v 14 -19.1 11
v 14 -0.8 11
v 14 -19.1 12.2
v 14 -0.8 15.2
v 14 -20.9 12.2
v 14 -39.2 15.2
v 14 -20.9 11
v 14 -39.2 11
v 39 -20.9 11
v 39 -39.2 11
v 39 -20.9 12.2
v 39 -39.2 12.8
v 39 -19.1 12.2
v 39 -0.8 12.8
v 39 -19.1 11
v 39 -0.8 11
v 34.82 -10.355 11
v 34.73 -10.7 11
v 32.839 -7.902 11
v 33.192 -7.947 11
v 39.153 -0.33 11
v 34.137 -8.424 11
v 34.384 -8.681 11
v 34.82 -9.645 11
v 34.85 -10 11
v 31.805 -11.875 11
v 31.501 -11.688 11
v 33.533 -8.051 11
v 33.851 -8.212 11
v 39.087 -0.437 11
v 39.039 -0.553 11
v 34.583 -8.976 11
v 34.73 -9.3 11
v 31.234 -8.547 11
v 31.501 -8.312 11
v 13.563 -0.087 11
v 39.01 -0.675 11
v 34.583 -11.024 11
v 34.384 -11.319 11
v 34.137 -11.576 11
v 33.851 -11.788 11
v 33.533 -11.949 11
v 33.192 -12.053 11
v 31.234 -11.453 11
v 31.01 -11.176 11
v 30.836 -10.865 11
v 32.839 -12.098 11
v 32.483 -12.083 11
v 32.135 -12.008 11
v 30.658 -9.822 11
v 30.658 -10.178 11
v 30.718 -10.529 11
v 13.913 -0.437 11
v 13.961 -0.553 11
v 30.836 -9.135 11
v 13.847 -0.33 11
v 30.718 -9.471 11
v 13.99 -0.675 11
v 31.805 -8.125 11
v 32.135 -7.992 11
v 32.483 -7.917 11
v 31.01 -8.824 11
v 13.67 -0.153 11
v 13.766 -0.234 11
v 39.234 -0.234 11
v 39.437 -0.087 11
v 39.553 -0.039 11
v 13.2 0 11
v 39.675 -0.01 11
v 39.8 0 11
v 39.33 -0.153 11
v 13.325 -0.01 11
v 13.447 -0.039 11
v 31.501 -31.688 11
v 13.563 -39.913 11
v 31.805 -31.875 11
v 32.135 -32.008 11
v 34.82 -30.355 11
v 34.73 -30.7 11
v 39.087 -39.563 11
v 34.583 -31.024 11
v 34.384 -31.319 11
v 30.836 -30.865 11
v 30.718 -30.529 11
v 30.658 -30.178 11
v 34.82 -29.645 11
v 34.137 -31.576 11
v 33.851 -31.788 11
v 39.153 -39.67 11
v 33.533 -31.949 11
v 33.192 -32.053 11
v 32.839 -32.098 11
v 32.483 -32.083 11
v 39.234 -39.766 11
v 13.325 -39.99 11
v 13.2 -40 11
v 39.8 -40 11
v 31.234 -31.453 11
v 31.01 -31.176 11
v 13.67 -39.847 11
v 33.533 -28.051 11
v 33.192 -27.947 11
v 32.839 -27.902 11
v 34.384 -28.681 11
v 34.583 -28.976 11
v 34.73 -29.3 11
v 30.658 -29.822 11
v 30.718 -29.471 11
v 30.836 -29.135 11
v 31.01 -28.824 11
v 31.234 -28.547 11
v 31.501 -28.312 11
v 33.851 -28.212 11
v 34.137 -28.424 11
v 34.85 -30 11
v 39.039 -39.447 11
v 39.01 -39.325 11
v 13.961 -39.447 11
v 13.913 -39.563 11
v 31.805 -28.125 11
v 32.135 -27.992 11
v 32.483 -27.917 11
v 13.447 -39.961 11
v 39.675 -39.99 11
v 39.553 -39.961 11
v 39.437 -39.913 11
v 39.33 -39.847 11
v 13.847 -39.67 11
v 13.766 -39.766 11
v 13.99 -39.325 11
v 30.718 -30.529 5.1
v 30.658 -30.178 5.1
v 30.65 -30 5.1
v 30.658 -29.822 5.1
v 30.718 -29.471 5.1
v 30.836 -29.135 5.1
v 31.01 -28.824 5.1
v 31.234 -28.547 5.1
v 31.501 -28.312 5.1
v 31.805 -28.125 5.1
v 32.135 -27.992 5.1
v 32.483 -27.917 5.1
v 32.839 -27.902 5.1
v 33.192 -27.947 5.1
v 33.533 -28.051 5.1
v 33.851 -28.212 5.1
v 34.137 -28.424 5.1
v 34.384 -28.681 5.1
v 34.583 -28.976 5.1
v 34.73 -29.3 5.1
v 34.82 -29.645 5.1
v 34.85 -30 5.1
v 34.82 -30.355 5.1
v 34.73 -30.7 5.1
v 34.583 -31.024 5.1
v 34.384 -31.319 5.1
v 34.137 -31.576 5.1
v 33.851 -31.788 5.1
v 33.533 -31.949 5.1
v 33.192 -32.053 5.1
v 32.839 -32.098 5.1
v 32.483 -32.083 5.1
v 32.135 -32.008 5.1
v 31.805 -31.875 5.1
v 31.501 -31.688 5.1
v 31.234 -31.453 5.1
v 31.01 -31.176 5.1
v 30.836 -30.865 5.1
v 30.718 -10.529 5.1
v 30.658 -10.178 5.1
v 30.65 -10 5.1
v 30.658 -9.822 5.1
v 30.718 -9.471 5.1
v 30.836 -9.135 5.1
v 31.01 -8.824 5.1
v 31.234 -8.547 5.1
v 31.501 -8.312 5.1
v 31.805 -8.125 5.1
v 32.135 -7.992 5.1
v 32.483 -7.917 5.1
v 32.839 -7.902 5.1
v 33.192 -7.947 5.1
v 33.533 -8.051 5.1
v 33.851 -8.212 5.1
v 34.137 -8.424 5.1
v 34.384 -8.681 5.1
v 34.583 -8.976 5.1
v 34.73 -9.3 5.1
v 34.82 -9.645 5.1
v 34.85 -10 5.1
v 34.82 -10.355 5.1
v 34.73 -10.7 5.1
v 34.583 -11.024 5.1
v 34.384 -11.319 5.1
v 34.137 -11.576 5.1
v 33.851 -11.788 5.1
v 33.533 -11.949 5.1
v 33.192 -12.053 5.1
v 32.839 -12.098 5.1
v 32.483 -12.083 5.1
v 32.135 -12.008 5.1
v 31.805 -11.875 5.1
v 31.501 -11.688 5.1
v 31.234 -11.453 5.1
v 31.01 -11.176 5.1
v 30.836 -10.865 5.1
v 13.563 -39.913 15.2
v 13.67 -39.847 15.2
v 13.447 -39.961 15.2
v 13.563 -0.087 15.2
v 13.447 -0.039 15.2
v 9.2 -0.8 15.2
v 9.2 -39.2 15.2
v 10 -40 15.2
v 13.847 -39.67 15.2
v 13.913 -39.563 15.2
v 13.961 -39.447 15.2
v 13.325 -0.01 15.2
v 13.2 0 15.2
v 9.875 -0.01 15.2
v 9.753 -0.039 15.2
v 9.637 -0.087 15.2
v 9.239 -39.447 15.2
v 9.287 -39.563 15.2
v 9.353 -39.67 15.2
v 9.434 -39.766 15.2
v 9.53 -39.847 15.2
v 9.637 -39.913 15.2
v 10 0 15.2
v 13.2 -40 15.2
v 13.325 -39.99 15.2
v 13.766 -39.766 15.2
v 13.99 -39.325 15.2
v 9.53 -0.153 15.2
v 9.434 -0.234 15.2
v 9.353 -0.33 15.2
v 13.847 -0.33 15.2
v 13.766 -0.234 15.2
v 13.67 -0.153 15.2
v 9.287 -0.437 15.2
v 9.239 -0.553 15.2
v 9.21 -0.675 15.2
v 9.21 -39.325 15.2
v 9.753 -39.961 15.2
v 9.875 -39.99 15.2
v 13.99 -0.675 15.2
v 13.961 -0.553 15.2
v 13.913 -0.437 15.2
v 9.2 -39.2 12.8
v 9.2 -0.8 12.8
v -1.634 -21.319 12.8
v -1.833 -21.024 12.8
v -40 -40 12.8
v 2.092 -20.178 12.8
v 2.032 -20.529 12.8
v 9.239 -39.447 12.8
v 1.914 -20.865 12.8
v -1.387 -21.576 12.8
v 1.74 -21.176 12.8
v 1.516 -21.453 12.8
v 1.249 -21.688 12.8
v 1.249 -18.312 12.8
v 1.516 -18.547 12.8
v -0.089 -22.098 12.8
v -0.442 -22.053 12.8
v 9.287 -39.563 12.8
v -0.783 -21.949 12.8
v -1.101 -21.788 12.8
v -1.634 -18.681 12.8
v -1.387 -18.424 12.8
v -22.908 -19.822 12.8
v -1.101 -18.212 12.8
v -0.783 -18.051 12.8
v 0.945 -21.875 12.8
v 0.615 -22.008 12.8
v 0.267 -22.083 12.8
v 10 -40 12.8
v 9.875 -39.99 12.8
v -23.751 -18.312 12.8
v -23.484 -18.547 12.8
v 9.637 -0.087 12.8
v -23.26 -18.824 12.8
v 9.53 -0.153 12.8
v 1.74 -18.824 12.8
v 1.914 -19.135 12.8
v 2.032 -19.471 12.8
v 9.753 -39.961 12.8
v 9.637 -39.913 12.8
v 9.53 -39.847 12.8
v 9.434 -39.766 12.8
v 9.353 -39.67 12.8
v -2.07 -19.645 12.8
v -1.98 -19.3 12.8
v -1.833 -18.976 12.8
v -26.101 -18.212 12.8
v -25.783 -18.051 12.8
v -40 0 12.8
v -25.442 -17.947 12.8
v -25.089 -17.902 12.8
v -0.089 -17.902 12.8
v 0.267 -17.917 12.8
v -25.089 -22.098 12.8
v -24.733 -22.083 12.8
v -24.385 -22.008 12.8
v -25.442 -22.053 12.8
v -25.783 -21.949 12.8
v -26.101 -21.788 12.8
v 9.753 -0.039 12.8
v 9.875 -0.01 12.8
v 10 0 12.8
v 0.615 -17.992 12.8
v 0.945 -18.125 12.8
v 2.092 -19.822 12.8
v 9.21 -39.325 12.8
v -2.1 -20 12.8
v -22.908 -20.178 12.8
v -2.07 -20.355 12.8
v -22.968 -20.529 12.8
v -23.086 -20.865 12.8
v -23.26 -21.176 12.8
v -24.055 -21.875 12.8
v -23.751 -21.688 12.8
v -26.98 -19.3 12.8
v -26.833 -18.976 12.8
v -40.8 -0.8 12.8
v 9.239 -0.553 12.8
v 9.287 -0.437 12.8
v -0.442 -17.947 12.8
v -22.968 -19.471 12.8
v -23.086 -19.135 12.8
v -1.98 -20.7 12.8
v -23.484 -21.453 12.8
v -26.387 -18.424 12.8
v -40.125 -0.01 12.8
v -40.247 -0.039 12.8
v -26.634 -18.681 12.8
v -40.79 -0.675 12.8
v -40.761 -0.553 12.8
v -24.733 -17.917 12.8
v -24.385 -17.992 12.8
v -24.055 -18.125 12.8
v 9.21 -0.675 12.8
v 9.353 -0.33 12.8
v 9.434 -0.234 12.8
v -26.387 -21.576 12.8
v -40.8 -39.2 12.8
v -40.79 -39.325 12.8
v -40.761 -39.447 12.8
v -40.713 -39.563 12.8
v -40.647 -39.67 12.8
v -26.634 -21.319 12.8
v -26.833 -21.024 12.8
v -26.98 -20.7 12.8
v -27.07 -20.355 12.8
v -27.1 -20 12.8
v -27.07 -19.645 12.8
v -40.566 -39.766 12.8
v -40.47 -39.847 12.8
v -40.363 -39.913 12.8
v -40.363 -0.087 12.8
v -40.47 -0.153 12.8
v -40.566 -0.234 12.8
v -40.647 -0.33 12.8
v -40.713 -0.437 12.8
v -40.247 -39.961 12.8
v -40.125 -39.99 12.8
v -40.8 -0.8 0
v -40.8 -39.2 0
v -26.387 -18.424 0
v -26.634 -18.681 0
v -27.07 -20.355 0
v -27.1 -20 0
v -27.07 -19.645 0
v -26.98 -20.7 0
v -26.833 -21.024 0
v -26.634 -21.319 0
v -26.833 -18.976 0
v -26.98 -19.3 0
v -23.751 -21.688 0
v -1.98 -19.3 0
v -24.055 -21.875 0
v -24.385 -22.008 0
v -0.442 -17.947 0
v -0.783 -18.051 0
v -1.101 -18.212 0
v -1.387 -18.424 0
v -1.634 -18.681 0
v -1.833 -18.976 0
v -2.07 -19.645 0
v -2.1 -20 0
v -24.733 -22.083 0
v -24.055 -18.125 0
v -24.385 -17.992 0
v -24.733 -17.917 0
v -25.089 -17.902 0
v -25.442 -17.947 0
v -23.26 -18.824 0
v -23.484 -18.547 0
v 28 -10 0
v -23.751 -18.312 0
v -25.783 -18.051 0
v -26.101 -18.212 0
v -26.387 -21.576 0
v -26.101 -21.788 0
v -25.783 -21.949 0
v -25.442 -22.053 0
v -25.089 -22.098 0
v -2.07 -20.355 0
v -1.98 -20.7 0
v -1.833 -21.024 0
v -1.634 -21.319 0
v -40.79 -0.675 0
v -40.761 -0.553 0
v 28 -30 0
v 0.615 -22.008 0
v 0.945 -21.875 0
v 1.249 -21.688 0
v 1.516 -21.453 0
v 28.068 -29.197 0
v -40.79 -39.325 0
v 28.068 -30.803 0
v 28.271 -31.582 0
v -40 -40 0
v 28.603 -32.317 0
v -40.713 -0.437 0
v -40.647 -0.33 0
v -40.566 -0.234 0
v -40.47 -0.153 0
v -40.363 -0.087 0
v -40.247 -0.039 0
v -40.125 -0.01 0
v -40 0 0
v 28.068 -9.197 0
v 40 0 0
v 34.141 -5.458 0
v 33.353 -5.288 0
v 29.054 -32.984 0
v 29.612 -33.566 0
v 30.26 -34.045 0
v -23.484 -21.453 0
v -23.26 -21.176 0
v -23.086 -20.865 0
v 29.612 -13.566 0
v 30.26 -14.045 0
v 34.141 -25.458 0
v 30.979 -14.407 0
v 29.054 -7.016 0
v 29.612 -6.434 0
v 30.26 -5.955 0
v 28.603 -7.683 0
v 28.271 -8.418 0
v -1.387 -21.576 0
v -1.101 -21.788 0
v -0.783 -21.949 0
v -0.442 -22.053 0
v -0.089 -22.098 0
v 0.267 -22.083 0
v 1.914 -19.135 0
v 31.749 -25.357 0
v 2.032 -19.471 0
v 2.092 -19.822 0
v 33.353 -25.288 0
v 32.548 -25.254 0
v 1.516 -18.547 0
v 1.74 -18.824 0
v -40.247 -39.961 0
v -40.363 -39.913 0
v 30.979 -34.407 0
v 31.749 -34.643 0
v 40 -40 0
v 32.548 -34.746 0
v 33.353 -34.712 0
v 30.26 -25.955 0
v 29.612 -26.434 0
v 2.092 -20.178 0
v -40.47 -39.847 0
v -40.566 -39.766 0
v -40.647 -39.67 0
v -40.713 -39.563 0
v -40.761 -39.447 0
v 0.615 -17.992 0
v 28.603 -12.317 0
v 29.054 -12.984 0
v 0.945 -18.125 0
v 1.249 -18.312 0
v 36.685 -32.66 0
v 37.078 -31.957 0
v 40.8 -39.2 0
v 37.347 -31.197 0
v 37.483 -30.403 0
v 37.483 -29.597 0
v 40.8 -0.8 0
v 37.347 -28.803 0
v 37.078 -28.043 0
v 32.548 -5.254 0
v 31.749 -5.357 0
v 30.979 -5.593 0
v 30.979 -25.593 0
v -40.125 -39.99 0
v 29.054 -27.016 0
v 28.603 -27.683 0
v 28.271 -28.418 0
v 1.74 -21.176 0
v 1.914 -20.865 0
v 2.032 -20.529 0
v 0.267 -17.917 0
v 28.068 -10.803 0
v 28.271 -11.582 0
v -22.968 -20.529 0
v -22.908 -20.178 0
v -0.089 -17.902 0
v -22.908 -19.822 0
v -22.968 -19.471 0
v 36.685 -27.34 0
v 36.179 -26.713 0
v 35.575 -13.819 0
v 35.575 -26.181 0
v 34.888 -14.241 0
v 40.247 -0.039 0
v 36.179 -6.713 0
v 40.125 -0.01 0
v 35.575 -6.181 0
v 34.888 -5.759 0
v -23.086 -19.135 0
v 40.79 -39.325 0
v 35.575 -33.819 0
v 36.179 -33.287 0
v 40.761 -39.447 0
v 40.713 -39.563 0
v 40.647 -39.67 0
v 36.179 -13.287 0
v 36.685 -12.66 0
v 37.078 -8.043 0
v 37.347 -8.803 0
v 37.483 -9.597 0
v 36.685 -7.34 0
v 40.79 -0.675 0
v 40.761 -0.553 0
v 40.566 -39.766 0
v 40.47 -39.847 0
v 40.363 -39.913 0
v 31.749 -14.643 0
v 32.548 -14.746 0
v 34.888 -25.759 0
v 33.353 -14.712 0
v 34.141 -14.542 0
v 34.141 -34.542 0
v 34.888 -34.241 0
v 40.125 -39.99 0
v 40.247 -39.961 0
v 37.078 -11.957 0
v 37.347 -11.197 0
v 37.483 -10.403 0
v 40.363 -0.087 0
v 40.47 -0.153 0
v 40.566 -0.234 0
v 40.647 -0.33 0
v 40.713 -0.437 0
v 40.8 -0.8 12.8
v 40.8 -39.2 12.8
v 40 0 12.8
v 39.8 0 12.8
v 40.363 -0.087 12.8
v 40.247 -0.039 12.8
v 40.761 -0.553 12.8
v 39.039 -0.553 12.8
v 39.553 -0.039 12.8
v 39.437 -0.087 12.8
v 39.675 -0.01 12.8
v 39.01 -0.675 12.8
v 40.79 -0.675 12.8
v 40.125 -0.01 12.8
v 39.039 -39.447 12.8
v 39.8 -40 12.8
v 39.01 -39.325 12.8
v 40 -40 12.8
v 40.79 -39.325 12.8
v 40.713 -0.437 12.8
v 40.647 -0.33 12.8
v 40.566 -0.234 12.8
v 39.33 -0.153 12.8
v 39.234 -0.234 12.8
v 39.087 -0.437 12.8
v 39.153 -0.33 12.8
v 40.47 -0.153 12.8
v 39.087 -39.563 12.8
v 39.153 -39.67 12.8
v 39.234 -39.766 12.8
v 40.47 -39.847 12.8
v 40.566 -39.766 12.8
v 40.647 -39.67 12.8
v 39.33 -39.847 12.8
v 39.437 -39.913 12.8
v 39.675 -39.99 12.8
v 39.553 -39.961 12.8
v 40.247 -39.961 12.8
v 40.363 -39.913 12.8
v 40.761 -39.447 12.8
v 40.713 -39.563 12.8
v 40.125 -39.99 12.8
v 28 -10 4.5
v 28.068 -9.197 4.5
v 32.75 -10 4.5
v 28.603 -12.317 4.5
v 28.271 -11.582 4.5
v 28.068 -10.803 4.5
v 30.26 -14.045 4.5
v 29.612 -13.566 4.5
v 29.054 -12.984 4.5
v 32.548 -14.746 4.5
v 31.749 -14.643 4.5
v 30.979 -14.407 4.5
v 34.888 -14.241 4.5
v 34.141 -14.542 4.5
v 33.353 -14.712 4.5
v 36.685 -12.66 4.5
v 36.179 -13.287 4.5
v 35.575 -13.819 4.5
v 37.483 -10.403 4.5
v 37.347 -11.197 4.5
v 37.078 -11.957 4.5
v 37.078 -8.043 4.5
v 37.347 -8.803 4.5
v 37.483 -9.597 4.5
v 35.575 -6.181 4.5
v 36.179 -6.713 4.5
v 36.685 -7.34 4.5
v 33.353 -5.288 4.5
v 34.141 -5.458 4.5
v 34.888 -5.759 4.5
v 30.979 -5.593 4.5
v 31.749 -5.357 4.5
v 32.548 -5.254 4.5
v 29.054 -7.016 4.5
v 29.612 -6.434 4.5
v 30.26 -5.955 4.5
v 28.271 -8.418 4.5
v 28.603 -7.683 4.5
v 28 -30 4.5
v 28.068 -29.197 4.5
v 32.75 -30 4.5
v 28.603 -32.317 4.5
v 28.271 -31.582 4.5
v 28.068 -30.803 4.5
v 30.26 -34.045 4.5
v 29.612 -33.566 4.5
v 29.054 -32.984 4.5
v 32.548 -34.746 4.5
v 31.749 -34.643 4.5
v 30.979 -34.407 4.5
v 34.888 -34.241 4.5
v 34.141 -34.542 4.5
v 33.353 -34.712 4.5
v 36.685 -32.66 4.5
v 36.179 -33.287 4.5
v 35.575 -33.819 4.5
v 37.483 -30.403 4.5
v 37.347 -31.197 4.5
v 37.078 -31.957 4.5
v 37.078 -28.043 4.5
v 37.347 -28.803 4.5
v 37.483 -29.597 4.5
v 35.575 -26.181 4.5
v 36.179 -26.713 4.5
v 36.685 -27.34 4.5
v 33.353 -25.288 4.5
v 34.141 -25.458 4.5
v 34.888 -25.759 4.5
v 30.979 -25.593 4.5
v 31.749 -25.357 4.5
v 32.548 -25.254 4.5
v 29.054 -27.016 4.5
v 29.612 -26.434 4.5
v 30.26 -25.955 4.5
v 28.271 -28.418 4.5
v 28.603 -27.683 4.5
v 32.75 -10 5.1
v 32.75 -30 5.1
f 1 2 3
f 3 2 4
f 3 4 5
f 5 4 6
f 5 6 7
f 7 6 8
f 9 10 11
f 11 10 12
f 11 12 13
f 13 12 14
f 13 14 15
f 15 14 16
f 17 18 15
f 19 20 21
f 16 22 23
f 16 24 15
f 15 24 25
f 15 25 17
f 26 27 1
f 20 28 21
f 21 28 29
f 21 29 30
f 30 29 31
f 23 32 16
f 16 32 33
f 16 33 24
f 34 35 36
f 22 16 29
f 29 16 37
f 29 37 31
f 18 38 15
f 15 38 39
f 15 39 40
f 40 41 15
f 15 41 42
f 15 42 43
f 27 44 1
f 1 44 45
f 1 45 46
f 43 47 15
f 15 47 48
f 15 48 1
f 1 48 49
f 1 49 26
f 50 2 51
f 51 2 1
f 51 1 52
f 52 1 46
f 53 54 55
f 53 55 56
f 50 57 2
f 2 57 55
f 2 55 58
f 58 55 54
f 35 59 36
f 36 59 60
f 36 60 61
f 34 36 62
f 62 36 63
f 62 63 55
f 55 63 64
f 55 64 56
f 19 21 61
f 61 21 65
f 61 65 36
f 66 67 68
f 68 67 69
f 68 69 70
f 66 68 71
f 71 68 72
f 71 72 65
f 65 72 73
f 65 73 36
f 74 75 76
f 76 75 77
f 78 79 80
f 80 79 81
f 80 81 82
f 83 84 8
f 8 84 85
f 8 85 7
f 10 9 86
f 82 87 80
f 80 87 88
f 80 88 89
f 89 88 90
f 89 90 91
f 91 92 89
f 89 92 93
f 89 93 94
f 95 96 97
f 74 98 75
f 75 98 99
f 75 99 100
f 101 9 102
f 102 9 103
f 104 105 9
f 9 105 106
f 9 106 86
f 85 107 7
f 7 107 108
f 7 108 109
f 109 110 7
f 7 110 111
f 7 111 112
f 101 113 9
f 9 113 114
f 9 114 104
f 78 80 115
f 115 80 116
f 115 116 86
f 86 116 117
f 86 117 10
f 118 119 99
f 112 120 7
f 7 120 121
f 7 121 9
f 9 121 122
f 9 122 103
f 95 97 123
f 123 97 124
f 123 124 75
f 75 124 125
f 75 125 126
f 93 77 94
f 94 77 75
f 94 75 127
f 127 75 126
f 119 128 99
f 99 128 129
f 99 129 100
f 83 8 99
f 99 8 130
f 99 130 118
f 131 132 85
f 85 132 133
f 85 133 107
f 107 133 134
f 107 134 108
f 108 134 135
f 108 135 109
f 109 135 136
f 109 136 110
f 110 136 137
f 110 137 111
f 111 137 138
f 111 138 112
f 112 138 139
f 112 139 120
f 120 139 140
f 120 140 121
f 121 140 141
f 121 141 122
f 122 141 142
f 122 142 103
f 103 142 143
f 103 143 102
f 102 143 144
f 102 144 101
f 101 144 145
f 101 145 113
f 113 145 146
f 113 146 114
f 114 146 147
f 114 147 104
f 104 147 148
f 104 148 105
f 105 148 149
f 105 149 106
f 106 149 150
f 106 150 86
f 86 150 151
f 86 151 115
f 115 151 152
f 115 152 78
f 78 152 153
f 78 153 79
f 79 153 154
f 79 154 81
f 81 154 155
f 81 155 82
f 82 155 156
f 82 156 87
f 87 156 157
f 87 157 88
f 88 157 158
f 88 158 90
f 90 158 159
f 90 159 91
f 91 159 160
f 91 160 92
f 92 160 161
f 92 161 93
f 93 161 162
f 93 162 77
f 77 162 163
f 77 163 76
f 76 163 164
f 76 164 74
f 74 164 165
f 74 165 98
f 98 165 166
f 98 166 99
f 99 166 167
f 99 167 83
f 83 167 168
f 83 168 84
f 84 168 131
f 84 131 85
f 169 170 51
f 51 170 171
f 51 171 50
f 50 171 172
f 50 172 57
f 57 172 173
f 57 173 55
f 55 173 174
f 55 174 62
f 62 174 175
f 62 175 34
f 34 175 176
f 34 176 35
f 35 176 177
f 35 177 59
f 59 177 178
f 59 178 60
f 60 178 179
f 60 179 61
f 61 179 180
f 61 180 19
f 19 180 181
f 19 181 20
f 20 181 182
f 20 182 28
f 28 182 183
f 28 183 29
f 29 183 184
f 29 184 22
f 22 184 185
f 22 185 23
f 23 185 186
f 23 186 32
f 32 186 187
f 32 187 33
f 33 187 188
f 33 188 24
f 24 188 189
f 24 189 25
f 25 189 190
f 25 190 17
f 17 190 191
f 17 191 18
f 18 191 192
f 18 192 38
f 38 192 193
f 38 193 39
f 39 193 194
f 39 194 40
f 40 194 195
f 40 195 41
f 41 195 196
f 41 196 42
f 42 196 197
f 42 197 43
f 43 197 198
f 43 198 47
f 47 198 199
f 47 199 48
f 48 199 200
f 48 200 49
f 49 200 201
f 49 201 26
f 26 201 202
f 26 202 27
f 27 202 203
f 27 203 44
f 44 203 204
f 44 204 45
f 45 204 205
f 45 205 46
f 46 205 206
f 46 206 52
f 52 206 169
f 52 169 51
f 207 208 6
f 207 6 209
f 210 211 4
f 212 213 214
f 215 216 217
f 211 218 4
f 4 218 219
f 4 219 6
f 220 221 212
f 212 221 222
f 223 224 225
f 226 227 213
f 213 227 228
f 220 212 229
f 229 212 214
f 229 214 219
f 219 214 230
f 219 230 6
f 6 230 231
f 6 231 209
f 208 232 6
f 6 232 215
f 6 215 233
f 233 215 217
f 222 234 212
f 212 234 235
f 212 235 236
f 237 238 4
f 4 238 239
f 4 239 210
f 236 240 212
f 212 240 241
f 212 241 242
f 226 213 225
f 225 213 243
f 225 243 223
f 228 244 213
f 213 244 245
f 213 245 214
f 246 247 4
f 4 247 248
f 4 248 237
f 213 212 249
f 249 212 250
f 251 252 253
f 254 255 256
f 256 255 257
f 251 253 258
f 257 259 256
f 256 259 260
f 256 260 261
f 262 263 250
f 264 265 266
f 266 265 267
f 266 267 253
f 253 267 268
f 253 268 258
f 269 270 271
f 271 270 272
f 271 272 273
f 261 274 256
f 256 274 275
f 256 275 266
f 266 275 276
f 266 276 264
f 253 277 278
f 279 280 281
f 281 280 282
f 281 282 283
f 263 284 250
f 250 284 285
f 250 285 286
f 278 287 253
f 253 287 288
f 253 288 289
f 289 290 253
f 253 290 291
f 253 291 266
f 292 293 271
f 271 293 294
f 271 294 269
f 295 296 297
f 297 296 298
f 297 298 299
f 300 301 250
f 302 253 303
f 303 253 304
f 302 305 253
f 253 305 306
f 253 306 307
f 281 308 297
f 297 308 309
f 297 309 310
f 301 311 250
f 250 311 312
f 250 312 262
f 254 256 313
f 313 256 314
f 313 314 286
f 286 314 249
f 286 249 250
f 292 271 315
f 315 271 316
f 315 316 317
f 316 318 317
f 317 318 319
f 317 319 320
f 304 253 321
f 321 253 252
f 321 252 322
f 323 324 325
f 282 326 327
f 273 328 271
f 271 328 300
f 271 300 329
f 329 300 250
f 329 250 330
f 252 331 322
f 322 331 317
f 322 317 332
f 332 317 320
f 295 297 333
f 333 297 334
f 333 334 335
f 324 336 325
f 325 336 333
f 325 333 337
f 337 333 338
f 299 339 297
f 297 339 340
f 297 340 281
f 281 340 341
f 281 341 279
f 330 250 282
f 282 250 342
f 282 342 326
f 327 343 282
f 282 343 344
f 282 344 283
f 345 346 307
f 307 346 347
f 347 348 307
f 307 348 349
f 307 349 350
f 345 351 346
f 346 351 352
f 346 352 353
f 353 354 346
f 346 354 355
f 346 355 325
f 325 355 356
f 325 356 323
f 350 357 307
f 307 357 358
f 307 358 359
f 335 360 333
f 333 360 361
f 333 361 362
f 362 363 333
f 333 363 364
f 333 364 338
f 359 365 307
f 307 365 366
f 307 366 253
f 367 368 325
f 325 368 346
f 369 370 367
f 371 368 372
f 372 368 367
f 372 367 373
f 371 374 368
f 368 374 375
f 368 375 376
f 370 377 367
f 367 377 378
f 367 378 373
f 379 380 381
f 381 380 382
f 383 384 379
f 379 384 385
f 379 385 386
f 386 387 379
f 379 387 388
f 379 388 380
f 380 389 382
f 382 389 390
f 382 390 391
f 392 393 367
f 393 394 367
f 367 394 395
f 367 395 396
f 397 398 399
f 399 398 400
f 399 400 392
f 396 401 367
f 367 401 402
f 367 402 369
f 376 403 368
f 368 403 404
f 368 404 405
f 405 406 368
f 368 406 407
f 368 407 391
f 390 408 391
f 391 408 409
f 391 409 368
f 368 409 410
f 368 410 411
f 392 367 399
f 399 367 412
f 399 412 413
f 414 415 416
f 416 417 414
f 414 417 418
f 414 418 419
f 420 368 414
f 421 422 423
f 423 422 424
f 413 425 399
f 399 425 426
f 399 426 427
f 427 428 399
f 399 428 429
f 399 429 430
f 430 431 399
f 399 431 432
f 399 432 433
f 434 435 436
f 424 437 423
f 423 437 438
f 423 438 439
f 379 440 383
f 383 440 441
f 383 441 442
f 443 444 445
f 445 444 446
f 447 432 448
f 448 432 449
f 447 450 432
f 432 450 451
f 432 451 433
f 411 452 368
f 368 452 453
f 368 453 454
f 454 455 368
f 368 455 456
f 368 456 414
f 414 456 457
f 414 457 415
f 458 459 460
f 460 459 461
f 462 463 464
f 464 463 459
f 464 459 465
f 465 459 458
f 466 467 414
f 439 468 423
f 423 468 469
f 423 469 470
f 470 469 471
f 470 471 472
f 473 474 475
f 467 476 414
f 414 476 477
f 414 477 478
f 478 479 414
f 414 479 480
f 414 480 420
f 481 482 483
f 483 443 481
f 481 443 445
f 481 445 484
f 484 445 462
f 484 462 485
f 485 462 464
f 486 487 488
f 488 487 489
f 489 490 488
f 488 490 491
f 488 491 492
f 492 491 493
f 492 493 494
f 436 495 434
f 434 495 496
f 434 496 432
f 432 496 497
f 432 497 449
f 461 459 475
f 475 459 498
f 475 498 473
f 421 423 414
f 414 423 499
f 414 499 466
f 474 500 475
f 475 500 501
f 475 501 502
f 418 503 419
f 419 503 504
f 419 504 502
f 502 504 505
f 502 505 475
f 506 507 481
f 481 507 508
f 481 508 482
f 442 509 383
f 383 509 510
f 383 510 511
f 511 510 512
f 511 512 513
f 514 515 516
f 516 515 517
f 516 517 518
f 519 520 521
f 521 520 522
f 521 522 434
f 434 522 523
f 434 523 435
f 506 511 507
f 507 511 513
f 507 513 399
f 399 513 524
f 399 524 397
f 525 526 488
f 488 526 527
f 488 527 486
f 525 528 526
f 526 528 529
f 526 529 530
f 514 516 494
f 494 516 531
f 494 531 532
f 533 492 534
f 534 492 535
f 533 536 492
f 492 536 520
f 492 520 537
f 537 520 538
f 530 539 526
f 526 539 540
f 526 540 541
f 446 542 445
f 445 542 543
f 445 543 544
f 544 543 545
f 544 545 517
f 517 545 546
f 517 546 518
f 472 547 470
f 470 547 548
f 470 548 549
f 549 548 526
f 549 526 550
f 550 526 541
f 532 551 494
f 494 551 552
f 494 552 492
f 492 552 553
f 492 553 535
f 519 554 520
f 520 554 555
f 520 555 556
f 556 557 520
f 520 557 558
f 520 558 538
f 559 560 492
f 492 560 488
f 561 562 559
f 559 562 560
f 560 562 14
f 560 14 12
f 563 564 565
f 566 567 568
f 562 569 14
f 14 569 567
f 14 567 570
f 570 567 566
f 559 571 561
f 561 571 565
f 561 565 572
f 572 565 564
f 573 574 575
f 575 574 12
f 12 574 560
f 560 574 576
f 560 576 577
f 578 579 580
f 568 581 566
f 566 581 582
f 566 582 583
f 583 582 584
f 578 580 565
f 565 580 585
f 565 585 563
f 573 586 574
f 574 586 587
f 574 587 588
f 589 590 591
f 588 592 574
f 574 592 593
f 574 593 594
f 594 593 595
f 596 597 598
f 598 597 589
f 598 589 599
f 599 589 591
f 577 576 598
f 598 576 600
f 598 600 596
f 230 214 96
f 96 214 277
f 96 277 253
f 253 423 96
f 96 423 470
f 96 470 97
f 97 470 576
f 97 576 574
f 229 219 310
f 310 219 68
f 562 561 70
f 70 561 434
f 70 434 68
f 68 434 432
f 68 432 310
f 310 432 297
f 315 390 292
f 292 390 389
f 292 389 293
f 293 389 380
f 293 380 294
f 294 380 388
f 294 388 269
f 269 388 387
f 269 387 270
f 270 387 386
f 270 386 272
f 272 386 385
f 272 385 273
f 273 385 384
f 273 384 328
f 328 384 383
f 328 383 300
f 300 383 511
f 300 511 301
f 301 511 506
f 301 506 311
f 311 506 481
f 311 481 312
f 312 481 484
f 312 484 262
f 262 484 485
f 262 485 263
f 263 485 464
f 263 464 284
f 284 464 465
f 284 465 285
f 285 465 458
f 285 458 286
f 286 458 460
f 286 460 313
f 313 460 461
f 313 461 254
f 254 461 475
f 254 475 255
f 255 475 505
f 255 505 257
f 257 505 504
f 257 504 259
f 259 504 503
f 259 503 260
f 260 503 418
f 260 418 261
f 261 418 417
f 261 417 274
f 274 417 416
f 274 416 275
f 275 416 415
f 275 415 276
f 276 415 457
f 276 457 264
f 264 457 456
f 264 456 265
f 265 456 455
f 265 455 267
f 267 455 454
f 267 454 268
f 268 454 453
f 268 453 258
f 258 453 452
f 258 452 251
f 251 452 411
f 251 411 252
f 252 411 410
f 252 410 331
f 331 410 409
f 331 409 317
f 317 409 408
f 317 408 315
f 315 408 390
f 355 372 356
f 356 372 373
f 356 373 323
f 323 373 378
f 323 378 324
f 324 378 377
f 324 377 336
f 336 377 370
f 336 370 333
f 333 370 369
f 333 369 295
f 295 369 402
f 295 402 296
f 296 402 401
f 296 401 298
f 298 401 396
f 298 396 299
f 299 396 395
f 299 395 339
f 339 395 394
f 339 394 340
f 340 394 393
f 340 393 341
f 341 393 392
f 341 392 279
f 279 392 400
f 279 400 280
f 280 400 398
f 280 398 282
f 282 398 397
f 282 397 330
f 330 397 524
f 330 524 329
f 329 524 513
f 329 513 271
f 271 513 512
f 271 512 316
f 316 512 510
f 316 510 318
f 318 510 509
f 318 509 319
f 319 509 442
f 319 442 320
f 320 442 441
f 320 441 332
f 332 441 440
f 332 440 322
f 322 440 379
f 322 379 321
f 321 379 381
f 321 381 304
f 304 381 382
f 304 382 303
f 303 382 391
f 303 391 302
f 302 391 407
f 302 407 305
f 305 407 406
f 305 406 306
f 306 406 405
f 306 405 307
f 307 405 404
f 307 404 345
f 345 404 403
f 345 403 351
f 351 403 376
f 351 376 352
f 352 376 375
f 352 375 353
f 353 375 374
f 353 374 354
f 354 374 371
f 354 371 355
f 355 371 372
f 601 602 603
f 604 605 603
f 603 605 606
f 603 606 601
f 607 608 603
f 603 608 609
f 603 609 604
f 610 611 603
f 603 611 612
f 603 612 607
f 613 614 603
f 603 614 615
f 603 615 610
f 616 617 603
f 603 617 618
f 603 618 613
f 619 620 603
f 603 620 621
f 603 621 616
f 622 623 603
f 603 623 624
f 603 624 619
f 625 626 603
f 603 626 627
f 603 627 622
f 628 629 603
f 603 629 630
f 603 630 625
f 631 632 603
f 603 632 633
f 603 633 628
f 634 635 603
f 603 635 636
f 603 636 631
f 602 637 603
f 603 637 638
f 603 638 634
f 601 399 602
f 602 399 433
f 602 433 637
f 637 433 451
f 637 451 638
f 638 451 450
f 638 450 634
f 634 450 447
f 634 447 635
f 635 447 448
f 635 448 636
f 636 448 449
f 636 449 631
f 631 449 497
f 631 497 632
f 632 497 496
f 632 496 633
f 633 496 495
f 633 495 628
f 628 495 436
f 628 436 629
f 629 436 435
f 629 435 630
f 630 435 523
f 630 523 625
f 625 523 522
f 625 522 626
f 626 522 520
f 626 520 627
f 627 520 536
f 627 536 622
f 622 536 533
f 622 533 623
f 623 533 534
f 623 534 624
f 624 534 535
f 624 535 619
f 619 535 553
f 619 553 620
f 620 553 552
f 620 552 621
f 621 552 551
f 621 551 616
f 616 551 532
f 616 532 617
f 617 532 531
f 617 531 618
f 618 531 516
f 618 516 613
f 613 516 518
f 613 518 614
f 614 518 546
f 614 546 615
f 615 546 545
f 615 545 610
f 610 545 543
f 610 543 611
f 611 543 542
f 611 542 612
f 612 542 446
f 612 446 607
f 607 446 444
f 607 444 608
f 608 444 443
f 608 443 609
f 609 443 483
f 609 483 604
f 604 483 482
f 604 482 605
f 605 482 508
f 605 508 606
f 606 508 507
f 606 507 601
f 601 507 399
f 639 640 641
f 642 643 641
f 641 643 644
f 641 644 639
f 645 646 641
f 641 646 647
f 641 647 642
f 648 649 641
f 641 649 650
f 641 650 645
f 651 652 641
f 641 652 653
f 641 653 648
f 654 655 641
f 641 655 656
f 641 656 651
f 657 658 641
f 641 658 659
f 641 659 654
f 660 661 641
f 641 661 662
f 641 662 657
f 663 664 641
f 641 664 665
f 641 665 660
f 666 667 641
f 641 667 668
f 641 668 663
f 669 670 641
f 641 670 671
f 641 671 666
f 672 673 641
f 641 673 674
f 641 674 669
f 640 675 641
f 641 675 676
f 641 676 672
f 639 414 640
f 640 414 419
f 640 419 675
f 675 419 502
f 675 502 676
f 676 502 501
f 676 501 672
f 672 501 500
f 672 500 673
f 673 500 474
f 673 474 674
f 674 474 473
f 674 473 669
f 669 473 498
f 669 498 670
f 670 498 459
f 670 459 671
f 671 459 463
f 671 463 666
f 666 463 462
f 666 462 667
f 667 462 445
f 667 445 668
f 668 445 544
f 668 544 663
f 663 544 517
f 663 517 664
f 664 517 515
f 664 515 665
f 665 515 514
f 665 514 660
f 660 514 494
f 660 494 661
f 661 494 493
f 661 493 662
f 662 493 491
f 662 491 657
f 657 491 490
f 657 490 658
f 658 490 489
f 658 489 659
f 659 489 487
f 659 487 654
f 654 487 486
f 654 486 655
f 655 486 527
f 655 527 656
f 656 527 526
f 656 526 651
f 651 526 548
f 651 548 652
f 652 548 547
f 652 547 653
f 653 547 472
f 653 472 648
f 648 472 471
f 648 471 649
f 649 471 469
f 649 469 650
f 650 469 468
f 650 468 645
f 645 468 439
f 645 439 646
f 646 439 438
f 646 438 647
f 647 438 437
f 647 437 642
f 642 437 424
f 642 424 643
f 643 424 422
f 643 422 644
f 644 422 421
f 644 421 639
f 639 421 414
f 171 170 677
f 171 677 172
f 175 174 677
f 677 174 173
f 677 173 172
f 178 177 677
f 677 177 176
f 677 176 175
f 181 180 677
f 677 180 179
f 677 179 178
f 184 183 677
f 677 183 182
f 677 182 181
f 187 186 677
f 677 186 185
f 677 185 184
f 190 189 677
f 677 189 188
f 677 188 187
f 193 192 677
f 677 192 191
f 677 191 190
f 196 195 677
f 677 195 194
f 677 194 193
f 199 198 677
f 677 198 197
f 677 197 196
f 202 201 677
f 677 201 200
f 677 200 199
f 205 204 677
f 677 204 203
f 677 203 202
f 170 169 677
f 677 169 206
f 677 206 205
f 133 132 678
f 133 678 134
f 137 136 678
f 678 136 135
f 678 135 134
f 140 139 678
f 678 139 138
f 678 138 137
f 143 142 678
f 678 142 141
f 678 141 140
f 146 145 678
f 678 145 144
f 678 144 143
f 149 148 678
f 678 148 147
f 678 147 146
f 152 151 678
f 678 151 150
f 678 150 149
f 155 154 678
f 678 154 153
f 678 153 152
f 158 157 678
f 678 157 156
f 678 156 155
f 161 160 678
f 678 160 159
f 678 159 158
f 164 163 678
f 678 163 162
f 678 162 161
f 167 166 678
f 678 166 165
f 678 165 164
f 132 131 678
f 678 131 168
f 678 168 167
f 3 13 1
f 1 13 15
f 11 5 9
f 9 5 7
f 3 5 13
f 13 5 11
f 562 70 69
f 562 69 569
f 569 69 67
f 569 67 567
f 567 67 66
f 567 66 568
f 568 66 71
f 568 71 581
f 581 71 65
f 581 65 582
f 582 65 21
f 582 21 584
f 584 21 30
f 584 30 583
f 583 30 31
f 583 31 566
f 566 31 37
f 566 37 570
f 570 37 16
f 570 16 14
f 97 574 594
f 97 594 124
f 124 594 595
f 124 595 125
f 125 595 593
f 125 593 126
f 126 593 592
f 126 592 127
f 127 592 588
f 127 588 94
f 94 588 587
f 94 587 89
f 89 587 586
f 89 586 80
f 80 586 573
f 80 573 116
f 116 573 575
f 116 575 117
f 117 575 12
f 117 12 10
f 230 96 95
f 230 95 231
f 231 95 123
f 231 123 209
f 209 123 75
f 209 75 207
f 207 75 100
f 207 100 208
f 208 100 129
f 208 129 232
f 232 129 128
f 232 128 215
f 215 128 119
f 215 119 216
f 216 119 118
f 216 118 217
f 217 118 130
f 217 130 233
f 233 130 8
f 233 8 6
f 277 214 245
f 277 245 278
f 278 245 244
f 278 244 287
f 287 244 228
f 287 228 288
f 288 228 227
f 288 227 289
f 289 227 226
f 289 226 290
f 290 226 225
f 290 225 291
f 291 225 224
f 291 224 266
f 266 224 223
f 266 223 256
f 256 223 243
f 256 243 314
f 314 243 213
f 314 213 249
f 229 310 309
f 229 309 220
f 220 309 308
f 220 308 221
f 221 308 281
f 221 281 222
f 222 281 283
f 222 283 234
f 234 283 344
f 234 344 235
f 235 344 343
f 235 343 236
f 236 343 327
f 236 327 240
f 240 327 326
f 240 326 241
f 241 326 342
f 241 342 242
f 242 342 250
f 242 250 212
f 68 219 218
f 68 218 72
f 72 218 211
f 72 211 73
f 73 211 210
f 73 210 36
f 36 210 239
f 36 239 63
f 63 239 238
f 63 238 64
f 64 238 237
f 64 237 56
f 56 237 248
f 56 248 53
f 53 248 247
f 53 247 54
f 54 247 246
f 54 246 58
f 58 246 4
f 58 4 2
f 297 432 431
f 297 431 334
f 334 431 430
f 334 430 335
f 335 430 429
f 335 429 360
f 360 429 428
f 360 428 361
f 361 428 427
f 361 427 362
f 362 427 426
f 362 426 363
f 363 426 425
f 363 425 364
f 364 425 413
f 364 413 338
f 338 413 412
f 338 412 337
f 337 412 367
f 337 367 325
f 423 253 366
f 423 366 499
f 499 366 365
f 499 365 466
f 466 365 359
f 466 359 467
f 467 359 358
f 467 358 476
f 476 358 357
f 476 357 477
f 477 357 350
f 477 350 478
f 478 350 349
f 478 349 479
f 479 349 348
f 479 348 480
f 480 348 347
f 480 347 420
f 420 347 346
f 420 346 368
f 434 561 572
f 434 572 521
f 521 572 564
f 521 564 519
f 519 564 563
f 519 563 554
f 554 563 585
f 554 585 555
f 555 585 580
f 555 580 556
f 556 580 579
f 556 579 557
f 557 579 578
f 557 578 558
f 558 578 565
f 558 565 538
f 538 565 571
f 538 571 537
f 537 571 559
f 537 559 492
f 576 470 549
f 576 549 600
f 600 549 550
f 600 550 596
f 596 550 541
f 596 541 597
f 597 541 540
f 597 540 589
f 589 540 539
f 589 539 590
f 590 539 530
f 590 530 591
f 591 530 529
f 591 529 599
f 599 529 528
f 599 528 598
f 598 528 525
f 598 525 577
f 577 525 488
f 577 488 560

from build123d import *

# Parameters (mm, degrees)
BOSS_EXTRUDE1_DEPTH = 40
SKETCH6_R           = 2.1
CUT_EXTRUDE4_DEPTH  = 12.8
CUT_EXTRUDE7_REACH  = 60.186
SKETCH10_R          = 2.1
SKETCH11_R          = 4.75
CUT_EXTRUDE8_DEPTH  = 4.5
BOSS_EXTRUDE2_START = -0.6
SKETCH12_R          = 2.1
BOSS_EXTRUDE2_DEPTH = 0.6
SKETCH13_W          = 25
SKETCH13_H          = 1.8
BOSS_EXTRUDE3_DEPTH = 1.2
FILLET1_R           = 0.8


with BuildPart() as part:
    # Sketch1 → Boss-Extrude1 (new body)
    with BuildSketch(Plane.XZ):
        Polygon((14, 15.2), (14, 12.8), (14, 11), (39, 11), (39, 12.8), (40.8, 12.8), (40.8, 0), (-40.8, 0), (-40.8, 12.8), (9.2, 12.8), (9.2, 15.2), align=None)
    extrude(amount=BOSS_EXTRUDE1_DEPTH)

    # Sketch6 → Cut-Extrude4 (cut)
    with BuildSketch(Plane(origin=(0, 0, 0), x_dir=(-1, 0, 0), z_dir=(0, 0, -1))):
        with Locations((25, -20)):
            Circle(SKETCH6_R)
        with Locations((0, -20)):
            Circle(SKETCH6_R)
    extrude(amount=-CUT_EXTRUDE4_DEPTH, mode=Mode.SUBTRACT)

    # Sketch10 → Cut-Extrude7 (cut, up to next)
    with BuildSketch(Plane.XY.offset(11), mode=Mode.PRIVATE) as cut_extrude7_sk1:
        with Locations((32.75, -10)):
            Circle(SKETCH10_R)
    cut_extrude7_tool1 = extrude(cut_extrude7_sk1.sketch, amount=-CUT_EXTRUDE7_REACH, mode=Mode.PRIVATE) & part.part
    # Sketch10 → Cut-Extrude7 (cut, up to next)
    with BuildSketch(Plane.XY.offset(11), mode=Mode.PRIVATE) as cut_extrude7_sk2:
        with Locations((32.75, -30)):
            Circle(SKETCH10_R)
    cut_extrude7_tool2 = extrude(cut_extrude7_sk2.sketch, amount=-CUT_EXTRUDE7_REACH, mode=Mode.PRIVATE) & part.part
    add(cut_extrude7_tool1.solids().sort_by_distance((32.75, -10, 11))[0], mode=Mode.SUBTRACT)
    add(cut_extrude7_tool2.solids().sort_by_distance((32.75, -30, 11))[0], mode=Mode.SUBTRACT)

    # Sketch11 → Cut-Extrude8 (cut)
    with BuildSketch(Plane(origin=(0, 0, 0), x_dir=(-1, 0, 0), z_dir=(0, 0, -1))):
        with Locations((-32.75, -10)):
            Circle(SKETCH11_R)
        with Locations((-32.75, -30)):
            Circle(SKETCH11_R)
    extrude(amount=-CUT_EXTRUDE8_DEPTH, mode=Mode.SUBTRACT)

    # Sketch12 → Boss-Extrude2 (add)
    with BuildSketch(Plane(origin=(0, 0, 4.5), x_dir=(-1, 0, 0), z_dir=(0, 0, -1)).offset(BOSS_EXTRUDE2_START)):
        with Locations(Location((-32.75, -10, 0), (0, 0, 180))):
            Circle(SKETCH12_R)
        with Locations(Location((-32.75, -30, 0), (0, 0, 180))):
            Circle(SKETCH12_R)
    extrude(amount=BOSS_EXTRUDE2_DEPTH)

    # Sketch13 → Boss-Extrude3 (add)
    with BuildSketch(Plane.XY.offset(11)):
        with Locations((26.5, -20)):
            Rectangle(SKETCH13_W, SKETCH13_H)
    extrude(amount=BOSS_EXTRUDE3_DEPTH)

    # Fillet1
    fillet1_edges = [part.edges().sort_by_distance(p)[0] for p in [
        (39, 0, 11.9),
        (40.8, 0, 6.4),
        (-40.8, 0, 6.4),
        (9.2, 0, 14),
        (14, 0, 13.1),
        (9.2, -40, 14),
        (-40.8, -40, 6.4),
        (40.8, -40, 6.4),
        (39, -40, 11.9),
        (14, -40, 13.1),
    ]]
    fillet(fillet1_edges, radius=FILLET1_R)


solid = part.part
